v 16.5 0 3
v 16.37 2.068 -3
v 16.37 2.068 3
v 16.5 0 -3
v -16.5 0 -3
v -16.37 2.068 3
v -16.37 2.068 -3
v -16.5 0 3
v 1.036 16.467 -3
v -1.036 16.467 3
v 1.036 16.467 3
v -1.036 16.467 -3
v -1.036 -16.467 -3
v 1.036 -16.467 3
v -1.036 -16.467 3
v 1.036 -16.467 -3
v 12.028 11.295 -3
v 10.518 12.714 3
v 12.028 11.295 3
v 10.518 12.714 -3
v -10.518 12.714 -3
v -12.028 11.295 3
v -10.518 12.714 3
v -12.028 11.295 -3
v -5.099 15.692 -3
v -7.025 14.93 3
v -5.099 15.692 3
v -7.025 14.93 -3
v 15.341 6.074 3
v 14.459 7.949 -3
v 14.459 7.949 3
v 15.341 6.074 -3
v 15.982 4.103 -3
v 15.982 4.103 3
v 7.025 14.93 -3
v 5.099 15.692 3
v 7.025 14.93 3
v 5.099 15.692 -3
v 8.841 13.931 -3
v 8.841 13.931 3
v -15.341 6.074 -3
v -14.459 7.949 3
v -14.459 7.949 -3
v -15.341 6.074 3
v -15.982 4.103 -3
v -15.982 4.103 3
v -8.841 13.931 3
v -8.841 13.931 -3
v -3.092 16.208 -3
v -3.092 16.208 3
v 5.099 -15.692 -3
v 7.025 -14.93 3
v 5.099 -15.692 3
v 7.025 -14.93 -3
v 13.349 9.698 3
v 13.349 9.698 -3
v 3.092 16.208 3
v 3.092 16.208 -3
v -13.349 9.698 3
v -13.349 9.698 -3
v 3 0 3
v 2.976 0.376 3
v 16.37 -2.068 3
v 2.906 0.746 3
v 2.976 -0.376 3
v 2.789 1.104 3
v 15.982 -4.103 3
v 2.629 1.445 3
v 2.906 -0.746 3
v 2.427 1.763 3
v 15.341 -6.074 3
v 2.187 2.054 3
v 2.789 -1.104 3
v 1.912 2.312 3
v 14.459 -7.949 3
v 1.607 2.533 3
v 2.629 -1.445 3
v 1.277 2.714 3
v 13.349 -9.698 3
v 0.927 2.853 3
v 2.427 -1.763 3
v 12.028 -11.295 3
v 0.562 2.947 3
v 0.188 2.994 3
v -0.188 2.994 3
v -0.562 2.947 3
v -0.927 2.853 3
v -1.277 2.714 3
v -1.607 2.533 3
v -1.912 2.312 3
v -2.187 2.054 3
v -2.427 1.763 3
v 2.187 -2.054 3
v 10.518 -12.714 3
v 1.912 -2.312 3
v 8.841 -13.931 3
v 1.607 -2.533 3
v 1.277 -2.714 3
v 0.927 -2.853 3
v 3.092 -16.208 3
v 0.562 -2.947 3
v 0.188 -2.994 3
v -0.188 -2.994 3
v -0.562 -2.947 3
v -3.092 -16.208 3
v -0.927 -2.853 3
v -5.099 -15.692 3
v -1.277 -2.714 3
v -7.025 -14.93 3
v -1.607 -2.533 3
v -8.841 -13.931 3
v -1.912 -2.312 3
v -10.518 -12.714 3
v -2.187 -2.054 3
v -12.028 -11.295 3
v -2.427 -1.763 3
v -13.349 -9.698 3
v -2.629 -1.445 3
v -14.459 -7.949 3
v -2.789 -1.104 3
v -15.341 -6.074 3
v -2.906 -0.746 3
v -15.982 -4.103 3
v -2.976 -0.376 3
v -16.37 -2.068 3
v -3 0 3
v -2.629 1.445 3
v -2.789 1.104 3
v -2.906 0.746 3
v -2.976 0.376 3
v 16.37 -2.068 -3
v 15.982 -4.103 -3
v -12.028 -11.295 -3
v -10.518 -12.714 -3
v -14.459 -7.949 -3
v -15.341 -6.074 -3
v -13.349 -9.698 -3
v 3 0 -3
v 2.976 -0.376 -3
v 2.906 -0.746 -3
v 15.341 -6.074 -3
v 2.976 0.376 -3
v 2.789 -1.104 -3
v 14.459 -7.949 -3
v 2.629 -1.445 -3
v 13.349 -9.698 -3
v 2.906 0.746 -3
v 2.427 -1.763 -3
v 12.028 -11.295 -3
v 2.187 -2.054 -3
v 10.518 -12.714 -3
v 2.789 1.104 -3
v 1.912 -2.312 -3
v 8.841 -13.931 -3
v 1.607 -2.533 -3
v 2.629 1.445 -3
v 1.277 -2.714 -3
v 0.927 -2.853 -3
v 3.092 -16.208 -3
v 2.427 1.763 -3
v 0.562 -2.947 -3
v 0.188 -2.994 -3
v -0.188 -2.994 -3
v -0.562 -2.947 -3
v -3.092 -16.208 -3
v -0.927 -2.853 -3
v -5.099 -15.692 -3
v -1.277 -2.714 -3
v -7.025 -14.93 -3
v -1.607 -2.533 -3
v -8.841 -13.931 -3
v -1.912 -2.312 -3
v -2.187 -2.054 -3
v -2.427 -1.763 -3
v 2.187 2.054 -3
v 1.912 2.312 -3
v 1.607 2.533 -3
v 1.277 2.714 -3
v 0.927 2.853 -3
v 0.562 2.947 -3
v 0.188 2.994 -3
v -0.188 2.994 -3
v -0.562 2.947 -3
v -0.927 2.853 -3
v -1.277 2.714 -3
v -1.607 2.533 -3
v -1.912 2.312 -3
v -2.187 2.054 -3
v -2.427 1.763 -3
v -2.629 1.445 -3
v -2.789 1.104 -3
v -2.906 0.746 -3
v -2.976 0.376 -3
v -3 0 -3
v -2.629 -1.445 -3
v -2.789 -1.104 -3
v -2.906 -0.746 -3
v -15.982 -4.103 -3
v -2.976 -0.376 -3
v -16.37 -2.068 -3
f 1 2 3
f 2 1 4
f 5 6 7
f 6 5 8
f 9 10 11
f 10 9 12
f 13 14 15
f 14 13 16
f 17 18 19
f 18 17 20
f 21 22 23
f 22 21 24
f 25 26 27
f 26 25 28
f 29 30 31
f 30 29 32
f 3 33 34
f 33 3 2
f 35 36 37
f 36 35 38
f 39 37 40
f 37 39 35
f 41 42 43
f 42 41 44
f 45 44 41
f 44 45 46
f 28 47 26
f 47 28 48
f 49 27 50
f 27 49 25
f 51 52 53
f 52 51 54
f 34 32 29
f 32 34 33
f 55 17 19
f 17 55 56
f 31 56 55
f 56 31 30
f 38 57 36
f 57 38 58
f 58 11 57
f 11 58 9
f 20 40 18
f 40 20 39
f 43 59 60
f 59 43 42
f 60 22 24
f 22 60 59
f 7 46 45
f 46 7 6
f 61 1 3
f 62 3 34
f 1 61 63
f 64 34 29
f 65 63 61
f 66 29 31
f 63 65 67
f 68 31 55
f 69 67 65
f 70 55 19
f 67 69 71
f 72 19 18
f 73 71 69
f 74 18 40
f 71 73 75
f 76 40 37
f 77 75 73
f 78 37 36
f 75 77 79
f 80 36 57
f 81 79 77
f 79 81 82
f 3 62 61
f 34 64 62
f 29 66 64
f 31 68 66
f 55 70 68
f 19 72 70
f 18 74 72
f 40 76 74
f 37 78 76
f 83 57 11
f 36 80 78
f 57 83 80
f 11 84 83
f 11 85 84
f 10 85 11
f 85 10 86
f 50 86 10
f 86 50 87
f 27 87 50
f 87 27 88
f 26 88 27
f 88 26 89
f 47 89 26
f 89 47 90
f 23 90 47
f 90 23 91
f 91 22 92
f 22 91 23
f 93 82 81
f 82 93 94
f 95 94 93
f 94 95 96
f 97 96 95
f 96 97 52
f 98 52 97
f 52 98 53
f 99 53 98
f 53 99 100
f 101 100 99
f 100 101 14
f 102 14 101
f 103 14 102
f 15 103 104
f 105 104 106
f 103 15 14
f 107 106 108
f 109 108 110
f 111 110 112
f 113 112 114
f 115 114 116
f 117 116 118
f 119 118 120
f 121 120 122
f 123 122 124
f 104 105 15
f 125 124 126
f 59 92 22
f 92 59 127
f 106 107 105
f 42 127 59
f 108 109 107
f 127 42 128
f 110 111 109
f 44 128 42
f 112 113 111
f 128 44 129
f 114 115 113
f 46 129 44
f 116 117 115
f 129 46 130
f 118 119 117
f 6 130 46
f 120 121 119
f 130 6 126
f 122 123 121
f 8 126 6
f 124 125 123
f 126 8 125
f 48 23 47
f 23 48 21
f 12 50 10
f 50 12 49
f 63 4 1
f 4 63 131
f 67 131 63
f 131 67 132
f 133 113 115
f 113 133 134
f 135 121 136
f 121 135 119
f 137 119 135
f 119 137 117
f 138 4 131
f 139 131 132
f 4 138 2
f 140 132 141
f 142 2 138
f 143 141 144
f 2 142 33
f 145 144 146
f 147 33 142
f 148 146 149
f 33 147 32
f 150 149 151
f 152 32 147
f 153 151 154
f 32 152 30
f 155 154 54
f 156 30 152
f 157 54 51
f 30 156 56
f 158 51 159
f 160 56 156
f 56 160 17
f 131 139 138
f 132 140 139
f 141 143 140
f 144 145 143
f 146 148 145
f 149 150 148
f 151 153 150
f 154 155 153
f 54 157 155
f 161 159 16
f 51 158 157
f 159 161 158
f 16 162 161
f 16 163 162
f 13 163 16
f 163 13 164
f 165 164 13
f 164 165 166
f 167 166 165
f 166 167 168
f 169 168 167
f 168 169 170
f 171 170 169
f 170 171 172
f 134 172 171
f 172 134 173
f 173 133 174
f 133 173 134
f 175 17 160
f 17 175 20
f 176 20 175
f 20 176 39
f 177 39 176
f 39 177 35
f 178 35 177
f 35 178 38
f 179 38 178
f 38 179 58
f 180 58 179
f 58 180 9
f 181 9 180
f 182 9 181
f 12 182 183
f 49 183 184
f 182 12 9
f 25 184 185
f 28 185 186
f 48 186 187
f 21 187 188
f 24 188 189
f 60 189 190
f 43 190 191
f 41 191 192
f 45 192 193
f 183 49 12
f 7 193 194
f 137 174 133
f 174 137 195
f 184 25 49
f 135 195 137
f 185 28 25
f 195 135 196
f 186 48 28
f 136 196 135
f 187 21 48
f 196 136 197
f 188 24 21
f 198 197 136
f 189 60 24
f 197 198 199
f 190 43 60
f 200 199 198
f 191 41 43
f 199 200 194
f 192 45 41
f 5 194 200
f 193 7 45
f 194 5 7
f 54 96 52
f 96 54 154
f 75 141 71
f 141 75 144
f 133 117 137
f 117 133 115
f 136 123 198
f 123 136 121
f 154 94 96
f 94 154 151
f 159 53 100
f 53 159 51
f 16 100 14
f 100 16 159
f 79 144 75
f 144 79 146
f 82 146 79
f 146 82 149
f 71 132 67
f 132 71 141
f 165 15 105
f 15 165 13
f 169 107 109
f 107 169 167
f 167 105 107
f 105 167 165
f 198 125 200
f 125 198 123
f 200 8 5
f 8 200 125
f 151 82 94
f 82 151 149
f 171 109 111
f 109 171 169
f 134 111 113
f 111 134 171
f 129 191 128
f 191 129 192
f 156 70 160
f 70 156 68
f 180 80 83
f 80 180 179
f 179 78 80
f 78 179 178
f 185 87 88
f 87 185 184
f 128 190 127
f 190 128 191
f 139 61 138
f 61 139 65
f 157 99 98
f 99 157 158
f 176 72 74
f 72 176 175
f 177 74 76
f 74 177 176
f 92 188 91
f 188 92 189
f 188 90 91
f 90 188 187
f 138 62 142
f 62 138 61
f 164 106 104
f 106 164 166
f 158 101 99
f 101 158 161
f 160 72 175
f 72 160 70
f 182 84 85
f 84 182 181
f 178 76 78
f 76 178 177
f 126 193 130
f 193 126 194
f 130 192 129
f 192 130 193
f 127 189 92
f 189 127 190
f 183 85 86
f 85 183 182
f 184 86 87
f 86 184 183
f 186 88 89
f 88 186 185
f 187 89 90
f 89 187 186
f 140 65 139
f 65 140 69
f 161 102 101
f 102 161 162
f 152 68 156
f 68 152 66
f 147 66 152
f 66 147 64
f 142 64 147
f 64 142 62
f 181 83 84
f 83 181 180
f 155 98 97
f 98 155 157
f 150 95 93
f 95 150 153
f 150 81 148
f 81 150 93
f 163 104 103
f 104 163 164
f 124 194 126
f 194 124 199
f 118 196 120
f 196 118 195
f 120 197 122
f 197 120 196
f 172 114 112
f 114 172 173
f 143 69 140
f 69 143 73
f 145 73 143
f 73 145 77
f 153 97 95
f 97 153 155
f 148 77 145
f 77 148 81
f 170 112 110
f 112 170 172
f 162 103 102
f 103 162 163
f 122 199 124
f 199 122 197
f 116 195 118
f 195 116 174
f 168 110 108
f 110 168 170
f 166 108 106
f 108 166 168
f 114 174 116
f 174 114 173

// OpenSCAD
$fn = 50;


difference() {
	union() {
		translate(v = [0, 0, -3.0000000000]) {
			cylinder(h = 6, r = 16.5000000000);
		}
	}
	union() {
		translate(v = [0, 0, -100.0000000000]) {
			cylinder(h = 200, r = 3);
		}
	}
}
